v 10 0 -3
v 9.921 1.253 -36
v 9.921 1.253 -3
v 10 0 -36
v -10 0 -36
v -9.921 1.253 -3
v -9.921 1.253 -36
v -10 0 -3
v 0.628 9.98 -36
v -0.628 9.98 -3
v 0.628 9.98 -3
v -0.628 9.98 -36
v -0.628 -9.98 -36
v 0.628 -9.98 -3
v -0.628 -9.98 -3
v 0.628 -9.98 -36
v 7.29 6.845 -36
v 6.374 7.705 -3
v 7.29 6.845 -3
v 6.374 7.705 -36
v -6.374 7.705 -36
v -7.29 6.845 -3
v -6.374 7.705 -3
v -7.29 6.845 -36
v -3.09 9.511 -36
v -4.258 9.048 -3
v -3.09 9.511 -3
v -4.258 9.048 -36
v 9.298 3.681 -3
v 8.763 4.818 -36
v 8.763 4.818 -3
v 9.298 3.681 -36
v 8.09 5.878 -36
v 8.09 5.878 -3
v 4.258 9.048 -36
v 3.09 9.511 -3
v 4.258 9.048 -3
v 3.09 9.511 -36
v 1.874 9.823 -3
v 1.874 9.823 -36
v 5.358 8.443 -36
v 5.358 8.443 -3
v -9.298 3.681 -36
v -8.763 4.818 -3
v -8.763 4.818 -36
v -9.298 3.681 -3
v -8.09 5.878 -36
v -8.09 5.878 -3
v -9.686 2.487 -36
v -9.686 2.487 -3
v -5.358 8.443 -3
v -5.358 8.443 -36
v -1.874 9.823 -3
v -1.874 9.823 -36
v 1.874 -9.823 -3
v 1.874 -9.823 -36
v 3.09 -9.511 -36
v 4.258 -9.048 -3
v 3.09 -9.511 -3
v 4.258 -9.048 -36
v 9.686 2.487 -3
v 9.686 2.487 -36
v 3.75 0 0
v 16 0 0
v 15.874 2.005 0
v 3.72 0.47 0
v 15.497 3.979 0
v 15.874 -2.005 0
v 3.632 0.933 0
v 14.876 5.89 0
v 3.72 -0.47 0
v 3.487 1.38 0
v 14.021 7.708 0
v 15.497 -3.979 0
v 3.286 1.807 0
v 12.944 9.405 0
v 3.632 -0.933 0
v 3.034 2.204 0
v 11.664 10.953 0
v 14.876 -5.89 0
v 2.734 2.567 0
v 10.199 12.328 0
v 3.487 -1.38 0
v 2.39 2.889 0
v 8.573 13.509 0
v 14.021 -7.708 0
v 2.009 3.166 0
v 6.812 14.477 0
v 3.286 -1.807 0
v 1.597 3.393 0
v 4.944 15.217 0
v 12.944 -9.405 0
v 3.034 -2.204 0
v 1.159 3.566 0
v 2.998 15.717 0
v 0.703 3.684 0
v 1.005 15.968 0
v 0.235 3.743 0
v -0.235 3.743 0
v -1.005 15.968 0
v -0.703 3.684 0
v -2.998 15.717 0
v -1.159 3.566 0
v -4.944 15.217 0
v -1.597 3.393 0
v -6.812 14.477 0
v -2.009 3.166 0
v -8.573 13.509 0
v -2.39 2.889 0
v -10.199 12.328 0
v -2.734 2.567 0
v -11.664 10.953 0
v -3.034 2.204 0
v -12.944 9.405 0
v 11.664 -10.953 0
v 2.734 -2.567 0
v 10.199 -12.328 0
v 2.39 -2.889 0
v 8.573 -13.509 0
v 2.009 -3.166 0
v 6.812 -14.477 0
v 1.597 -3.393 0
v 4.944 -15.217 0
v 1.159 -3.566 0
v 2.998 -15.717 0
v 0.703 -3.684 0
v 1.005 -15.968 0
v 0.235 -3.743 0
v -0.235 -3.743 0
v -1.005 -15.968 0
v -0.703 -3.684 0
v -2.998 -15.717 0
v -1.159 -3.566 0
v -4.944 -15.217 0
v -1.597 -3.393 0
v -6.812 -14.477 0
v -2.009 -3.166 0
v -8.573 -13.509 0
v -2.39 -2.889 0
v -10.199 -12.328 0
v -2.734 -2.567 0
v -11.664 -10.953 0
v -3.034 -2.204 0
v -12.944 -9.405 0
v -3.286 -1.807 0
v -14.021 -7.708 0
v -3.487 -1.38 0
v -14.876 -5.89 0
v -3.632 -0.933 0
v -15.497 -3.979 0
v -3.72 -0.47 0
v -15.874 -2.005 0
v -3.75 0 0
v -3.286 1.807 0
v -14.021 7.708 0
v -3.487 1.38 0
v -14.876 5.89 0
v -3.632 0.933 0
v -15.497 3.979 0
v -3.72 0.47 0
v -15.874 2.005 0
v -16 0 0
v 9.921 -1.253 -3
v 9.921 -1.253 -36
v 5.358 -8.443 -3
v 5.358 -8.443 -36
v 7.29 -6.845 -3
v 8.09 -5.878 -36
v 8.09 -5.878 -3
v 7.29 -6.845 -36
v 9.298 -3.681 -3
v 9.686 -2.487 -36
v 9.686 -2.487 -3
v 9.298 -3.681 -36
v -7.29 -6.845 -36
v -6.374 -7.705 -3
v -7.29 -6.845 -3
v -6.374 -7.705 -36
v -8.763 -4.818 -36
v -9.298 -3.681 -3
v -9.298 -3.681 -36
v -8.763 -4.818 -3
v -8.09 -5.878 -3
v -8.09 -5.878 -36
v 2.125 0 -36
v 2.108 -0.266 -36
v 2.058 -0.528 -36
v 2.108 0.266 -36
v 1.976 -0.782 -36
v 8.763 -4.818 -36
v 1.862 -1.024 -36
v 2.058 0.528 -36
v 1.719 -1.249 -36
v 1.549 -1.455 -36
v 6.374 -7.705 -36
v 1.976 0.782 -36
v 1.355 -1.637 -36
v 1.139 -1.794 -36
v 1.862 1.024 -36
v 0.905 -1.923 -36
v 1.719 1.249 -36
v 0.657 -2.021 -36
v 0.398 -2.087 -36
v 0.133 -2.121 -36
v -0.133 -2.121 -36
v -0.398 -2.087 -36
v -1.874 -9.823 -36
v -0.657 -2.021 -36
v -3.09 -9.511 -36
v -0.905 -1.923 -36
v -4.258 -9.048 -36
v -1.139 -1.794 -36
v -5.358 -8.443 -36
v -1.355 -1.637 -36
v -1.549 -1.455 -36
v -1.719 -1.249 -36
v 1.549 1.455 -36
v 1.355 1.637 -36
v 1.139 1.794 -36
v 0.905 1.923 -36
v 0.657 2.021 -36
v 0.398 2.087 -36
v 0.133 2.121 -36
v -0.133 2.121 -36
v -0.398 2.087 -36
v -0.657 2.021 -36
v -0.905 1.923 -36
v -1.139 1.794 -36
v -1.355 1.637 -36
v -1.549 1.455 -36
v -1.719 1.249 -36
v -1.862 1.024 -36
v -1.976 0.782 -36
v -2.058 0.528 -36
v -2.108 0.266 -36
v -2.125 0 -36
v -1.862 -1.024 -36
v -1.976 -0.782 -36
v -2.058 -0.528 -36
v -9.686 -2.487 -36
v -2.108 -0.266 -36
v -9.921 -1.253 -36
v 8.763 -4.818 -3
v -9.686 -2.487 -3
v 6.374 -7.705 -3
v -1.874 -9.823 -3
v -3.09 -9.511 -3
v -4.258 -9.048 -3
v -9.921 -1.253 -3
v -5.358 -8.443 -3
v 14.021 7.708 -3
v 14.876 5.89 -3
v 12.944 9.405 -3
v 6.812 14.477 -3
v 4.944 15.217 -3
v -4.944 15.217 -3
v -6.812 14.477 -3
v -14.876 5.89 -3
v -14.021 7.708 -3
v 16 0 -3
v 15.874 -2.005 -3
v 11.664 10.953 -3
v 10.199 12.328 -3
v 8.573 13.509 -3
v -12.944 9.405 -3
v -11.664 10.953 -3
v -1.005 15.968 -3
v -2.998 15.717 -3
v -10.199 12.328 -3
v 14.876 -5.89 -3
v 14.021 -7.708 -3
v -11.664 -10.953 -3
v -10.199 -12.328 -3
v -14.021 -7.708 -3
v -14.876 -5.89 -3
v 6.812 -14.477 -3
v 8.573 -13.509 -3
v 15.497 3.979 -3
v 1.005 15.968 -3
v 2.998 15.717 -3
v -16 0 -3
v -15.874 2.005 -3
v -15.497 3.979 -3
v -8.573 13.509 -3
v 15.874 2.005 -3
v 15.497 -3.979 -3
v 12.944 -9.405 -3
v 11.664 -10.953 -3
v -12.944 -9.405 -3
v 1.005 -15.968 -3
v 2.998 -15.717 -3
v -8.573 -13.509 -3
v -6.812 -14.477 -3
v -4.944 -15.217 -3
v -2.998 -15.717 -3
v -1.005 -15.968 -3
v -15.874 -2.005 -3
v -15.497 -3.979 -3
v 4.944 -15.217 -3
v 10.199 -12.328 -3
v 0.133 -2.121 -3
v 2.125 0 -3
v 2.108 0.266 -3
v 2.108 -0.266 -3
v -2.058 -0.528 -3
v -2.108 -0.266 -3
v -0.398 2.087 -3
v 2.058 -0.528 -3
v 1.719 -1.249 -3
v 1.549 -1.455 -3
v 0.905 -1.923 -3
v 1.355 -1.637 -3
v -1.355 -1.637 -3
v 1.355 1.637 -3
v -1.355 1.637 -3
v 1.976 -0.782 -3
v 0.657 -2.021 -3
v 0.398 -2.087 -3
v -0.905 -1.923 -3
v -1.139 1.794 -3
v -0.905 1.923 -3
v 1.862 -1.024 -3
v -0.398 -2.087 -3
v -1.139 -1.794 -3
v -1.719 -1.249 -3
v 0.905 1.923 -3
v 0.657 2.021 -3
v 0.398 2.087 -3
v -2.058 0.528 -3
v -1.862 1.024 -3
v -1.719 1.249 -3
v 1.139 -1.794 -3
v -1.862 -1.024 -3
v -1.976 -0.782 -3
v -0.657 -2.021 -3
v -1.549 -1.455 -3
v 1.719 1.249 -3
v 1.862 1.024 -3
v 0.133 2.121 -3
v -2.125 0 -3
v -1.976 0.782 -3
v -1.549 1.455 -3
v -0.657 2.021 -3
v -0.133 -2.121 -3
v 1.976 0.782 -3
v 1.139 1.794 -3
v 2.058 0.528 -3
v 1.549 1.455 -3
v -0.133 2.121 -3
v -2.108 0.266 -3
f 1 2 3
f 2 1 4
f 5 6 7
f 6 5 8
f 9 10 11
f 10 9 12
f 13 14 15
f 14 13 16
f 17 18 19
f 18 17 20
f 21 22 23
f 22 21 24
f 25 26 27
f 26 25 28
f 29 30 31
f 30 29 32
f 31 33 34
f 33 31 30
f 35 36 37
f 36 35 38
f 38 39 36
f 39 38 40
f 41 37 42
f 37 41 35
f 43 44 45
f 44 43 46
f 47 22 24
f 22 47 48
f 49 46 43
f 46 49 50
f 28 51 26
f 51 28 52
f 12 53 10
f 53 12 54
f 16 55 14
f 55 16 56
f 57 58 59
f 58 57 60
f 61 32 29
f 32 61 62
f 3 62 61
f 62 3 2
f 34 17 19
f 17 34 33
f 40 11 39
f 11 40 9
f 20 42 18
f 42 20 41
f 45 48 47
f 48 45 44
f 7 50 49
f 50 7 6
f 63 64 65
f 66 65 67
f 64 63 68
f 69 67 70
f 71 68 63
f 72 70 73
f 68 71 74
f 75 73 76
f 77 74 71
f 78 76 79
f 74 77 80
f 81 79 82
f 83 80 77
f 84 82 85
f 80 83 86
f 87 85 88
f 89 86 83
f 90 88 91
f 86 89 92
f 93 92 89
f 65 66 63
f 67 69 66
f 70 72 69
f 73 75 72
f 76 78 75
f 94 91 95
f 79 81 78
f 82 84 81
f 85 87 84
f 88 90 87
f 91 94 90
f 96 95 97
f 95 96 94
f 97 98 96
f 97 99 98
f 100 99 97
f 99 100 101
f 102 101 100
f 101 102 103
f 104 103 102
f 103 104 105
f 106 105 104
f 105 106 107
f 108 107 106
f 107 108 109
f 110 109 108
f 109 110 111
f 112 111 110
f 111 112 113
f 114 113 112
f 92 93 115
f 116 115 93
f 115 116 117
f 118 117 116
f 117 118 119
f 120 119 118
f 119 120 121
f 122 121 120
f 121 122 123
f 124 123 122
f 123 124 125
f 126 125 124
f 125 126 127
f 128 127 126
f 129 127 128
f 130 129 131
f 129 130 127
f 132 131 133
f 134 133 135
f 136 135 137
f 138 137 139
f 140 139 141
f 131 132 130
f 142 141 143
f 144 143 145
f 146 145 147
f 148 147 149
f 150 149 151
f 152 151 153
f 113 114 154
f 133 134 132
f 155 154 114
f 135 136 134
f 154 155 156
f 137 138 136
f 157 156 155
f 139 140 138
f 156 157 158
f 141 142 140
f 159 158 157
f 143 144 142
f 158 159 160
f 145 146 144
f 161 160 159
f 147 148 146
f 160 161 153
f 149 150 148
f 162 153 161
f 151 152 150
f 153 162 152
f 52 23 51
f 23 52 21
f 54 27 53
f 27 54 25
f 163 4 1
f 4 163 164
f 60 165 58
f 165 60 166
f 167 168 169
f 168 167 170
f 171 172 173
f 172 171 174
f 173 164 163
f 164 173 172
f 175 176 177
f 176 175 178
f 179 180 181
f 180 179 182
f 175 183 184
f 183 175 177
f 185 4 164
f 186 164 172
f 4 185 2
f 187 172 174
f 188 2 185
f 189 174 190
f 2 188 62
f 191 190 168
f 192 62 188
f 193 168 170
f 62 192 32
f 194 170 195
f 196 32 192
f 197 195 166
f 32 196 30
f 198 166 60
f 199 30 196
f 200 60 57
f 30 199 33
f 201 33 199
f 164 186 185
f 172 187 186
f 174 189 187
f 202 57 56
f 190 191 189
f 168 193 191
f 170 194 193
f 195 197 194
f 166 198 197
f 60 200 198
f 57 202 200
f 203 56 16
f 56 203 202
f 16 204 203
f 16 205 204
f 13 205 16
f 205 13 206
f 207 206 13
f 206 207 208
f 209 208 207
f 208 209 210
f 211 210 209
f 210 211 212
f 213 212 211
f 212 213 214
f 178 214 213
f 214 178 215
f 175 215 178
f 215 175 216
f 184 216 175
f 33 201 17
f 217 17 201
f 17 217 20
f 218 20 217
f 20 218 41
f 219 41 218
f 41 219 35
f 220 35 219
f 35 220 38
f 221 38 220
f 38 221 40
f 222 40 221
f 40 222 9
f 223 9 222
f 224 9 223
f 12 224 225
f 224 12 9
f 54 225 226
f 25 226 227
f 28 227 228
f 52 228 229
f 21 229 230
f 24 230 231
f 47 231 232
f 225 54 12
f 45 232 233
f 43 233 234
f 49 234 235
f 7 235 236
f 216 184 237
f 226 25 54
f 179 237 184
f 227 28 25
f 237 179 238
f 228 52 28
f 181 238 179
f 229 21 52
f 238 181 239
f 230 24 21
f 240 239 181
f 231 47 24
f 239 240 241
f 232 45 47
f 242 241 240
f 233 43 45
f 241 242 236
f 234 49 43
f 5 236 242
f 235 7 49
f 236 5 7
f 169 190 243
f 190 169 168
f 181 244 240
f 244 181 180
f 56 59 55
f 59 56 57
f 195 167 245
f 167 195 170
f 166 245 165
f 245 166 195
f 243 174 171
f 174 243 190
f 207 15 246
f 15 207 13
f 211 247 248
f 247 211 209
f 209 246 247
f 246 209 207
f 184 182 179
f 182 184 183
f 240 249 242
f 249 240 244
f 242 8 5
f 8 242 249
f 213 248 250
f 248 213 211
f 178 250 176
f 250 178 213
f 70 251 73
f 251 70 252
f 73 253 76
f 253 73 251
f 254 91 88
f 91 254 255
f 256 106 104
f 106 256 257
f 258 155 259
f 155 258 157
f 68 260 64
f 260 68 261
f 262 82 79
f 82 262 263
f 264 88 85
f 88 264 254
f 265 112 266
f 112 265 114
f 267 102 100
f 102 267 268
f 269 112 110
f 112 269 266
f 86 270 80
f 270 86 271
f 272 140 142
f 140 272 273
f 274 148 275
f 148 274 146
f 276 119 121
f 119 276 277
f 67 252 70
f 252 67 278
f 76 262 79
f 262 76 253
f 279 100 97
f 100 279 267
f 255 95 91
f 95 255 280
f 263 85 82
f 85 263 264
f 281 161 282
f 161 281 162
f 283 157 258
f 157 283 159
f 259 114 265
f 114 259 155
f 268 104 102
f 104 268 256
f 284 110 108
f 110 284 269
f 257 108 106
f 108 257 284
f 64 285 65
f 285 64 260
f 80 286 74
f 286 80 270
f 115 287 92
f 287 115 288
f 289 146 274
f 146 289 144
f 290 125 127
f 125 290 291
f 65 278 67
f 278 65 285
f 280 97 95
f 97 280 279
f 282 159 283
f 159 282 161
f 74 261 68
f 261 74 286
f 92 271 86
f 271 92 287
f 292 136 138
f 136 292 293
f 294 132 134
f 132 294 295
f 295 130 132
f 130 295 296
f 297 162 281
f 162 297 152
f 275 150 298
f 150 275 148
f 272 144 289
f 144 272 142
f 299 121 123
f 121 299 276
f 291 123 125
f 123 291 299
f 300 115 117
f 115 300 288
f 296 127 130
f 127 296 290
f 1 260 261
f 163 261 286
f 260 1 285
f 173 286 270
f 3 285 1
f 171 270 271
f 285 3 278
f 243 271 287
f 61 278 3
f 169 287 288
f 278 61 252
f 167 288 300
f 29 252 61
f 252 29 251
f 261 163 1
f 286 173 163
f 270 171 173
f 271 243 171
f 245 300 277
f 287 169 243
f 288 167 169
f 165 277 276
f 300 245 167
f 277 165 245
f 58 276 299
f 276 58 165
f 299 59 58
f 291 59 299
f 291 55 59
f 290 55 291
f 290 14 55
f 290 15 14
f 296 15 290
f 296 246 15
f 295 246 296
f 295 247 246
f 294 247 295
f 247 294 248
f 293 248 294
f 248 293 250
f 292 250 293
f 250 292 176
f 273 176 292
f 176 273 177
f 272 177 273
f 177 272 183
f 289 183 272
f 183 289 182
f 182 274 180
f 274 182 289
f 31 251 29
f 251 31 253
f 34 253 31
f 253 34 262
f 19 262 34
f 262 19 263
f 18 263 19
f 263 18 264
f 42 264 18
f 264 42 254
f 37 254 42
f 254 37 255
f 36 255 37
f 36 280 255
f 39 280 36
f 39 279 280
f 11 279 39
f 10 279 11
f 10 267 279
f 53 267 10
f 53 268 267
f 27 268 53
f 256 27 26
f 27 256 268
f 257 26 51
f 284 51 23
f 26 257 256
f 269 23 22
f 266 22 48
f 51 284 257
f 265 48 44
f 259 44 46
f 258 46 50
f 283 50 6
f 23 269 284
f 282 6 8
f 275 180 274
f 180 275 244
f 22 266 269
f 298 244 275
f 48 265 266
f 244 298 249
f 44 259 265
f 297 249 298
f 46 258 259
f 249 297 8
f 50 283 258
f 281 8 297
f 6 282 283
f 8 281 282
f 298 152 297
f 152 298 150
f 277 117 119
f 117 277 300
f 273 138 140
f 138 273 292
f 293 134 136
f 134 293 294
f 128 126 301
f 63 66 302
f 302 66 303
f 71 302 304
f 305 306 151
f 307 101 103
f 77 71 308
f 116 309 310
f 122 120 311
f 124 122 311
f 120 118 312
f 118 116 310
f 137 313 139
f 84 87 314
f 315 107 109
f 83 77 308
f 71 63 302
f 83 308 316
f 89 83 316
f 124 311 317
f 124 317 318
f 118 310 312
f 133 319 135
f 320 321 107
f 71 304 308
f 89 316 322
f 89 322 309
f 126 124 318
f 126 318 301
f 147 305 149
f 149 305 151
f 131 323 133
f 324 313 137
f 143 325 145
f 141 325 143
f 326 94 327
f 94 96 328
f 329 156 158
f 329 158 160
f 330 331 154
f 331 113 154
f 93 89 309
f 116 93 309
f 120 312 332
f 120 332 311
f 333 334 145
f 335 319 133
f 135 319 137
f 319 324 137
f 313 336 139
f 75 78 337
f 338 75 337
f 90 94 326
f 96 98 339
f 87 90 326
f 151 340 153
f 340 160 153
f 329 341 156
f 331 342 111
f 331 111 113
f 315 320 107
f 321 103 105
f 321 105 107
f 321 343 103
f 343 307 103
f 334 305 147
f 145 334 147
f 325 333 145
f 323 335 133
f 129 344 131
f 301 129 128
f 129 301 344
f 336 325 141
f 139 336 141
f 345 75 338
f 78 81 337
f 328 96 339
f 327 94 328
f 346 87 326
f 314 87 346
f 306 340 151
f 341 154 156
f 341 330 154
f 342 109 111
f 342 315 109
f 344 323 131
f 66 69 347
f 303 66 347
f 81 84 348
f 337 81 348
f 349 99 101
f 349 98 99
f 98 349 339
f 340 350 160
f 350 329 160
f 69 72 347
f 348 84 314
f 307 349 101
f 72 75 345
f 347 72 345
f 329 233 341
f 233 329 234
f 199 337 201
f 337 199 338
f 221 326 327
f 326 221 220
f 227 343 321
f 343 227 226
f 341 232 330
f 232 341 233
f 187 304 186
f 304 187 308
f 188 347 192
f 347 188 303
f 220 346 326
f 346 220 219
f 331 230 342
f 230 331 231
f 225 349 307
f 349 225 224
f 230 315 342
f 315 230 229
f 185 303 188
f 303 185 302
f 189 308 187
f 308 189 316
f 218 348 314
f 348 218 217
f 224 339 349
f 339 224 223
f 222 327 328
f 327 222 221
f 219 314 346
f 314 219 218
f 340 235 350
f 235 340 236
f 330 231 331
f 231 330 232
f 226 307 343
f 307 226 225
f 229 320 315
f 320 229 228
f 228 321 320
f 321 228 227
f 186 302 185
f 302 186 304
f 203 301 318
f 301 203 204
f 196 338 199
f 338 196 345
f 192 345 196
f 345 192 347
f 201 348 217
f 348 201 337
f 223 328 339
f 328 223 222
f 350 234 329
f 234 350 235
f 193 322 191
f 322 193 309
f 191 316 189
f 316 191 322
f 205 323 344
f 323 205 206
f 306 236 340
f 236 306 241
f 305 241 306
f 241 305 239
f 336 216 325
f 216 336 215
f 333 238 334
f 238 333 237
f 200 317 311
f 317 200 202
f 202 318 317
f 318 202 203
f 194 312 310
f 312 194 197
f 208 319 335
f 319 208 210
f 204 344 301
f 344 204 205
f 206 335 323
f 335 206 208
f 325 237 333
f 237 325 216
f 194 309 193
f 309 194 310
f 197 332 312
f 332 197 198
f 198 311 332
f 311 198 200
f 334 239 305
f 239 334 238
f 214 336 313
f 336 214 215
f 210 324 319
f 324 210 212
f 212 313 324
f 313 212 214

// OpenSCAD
$fn = 50;


difference() {
	union() {
		translate(v = [0, 0, -36.0000000000]) {
			cylinder(h = 36, r = 10.0000000000);
		}
		translate(v = [0, 0, -3.0000000000]) {
			cylinder(h = 3, r = 16.0000000000);
		}
	}
	union() {
		translate(v = [0, 0, 0]) {
			rotate(a = [0, 0, 0]) {
				difference() {
					union() {
						#translate(v = [0, 0, -36.0000000000]) {
							cylinder(h = 36, r = 2.0000000000);
						}
						#translate(v = [0, 0, -3]) {
							cylinder(h = 3, r1 = 2.1250000000, r2 = 3.7500000000);
						}
						#translate(v = [0, 0, -36.0000000000]) {
							cylinder(h = 36, r = 2.1250000000);
						}
						#translate(v = [0, 0, -36.0000000000]) {
							cylinder(h = 36, r = 2.0000000000);
						}
					}
					union();
				}
			}
		}
	}
}
